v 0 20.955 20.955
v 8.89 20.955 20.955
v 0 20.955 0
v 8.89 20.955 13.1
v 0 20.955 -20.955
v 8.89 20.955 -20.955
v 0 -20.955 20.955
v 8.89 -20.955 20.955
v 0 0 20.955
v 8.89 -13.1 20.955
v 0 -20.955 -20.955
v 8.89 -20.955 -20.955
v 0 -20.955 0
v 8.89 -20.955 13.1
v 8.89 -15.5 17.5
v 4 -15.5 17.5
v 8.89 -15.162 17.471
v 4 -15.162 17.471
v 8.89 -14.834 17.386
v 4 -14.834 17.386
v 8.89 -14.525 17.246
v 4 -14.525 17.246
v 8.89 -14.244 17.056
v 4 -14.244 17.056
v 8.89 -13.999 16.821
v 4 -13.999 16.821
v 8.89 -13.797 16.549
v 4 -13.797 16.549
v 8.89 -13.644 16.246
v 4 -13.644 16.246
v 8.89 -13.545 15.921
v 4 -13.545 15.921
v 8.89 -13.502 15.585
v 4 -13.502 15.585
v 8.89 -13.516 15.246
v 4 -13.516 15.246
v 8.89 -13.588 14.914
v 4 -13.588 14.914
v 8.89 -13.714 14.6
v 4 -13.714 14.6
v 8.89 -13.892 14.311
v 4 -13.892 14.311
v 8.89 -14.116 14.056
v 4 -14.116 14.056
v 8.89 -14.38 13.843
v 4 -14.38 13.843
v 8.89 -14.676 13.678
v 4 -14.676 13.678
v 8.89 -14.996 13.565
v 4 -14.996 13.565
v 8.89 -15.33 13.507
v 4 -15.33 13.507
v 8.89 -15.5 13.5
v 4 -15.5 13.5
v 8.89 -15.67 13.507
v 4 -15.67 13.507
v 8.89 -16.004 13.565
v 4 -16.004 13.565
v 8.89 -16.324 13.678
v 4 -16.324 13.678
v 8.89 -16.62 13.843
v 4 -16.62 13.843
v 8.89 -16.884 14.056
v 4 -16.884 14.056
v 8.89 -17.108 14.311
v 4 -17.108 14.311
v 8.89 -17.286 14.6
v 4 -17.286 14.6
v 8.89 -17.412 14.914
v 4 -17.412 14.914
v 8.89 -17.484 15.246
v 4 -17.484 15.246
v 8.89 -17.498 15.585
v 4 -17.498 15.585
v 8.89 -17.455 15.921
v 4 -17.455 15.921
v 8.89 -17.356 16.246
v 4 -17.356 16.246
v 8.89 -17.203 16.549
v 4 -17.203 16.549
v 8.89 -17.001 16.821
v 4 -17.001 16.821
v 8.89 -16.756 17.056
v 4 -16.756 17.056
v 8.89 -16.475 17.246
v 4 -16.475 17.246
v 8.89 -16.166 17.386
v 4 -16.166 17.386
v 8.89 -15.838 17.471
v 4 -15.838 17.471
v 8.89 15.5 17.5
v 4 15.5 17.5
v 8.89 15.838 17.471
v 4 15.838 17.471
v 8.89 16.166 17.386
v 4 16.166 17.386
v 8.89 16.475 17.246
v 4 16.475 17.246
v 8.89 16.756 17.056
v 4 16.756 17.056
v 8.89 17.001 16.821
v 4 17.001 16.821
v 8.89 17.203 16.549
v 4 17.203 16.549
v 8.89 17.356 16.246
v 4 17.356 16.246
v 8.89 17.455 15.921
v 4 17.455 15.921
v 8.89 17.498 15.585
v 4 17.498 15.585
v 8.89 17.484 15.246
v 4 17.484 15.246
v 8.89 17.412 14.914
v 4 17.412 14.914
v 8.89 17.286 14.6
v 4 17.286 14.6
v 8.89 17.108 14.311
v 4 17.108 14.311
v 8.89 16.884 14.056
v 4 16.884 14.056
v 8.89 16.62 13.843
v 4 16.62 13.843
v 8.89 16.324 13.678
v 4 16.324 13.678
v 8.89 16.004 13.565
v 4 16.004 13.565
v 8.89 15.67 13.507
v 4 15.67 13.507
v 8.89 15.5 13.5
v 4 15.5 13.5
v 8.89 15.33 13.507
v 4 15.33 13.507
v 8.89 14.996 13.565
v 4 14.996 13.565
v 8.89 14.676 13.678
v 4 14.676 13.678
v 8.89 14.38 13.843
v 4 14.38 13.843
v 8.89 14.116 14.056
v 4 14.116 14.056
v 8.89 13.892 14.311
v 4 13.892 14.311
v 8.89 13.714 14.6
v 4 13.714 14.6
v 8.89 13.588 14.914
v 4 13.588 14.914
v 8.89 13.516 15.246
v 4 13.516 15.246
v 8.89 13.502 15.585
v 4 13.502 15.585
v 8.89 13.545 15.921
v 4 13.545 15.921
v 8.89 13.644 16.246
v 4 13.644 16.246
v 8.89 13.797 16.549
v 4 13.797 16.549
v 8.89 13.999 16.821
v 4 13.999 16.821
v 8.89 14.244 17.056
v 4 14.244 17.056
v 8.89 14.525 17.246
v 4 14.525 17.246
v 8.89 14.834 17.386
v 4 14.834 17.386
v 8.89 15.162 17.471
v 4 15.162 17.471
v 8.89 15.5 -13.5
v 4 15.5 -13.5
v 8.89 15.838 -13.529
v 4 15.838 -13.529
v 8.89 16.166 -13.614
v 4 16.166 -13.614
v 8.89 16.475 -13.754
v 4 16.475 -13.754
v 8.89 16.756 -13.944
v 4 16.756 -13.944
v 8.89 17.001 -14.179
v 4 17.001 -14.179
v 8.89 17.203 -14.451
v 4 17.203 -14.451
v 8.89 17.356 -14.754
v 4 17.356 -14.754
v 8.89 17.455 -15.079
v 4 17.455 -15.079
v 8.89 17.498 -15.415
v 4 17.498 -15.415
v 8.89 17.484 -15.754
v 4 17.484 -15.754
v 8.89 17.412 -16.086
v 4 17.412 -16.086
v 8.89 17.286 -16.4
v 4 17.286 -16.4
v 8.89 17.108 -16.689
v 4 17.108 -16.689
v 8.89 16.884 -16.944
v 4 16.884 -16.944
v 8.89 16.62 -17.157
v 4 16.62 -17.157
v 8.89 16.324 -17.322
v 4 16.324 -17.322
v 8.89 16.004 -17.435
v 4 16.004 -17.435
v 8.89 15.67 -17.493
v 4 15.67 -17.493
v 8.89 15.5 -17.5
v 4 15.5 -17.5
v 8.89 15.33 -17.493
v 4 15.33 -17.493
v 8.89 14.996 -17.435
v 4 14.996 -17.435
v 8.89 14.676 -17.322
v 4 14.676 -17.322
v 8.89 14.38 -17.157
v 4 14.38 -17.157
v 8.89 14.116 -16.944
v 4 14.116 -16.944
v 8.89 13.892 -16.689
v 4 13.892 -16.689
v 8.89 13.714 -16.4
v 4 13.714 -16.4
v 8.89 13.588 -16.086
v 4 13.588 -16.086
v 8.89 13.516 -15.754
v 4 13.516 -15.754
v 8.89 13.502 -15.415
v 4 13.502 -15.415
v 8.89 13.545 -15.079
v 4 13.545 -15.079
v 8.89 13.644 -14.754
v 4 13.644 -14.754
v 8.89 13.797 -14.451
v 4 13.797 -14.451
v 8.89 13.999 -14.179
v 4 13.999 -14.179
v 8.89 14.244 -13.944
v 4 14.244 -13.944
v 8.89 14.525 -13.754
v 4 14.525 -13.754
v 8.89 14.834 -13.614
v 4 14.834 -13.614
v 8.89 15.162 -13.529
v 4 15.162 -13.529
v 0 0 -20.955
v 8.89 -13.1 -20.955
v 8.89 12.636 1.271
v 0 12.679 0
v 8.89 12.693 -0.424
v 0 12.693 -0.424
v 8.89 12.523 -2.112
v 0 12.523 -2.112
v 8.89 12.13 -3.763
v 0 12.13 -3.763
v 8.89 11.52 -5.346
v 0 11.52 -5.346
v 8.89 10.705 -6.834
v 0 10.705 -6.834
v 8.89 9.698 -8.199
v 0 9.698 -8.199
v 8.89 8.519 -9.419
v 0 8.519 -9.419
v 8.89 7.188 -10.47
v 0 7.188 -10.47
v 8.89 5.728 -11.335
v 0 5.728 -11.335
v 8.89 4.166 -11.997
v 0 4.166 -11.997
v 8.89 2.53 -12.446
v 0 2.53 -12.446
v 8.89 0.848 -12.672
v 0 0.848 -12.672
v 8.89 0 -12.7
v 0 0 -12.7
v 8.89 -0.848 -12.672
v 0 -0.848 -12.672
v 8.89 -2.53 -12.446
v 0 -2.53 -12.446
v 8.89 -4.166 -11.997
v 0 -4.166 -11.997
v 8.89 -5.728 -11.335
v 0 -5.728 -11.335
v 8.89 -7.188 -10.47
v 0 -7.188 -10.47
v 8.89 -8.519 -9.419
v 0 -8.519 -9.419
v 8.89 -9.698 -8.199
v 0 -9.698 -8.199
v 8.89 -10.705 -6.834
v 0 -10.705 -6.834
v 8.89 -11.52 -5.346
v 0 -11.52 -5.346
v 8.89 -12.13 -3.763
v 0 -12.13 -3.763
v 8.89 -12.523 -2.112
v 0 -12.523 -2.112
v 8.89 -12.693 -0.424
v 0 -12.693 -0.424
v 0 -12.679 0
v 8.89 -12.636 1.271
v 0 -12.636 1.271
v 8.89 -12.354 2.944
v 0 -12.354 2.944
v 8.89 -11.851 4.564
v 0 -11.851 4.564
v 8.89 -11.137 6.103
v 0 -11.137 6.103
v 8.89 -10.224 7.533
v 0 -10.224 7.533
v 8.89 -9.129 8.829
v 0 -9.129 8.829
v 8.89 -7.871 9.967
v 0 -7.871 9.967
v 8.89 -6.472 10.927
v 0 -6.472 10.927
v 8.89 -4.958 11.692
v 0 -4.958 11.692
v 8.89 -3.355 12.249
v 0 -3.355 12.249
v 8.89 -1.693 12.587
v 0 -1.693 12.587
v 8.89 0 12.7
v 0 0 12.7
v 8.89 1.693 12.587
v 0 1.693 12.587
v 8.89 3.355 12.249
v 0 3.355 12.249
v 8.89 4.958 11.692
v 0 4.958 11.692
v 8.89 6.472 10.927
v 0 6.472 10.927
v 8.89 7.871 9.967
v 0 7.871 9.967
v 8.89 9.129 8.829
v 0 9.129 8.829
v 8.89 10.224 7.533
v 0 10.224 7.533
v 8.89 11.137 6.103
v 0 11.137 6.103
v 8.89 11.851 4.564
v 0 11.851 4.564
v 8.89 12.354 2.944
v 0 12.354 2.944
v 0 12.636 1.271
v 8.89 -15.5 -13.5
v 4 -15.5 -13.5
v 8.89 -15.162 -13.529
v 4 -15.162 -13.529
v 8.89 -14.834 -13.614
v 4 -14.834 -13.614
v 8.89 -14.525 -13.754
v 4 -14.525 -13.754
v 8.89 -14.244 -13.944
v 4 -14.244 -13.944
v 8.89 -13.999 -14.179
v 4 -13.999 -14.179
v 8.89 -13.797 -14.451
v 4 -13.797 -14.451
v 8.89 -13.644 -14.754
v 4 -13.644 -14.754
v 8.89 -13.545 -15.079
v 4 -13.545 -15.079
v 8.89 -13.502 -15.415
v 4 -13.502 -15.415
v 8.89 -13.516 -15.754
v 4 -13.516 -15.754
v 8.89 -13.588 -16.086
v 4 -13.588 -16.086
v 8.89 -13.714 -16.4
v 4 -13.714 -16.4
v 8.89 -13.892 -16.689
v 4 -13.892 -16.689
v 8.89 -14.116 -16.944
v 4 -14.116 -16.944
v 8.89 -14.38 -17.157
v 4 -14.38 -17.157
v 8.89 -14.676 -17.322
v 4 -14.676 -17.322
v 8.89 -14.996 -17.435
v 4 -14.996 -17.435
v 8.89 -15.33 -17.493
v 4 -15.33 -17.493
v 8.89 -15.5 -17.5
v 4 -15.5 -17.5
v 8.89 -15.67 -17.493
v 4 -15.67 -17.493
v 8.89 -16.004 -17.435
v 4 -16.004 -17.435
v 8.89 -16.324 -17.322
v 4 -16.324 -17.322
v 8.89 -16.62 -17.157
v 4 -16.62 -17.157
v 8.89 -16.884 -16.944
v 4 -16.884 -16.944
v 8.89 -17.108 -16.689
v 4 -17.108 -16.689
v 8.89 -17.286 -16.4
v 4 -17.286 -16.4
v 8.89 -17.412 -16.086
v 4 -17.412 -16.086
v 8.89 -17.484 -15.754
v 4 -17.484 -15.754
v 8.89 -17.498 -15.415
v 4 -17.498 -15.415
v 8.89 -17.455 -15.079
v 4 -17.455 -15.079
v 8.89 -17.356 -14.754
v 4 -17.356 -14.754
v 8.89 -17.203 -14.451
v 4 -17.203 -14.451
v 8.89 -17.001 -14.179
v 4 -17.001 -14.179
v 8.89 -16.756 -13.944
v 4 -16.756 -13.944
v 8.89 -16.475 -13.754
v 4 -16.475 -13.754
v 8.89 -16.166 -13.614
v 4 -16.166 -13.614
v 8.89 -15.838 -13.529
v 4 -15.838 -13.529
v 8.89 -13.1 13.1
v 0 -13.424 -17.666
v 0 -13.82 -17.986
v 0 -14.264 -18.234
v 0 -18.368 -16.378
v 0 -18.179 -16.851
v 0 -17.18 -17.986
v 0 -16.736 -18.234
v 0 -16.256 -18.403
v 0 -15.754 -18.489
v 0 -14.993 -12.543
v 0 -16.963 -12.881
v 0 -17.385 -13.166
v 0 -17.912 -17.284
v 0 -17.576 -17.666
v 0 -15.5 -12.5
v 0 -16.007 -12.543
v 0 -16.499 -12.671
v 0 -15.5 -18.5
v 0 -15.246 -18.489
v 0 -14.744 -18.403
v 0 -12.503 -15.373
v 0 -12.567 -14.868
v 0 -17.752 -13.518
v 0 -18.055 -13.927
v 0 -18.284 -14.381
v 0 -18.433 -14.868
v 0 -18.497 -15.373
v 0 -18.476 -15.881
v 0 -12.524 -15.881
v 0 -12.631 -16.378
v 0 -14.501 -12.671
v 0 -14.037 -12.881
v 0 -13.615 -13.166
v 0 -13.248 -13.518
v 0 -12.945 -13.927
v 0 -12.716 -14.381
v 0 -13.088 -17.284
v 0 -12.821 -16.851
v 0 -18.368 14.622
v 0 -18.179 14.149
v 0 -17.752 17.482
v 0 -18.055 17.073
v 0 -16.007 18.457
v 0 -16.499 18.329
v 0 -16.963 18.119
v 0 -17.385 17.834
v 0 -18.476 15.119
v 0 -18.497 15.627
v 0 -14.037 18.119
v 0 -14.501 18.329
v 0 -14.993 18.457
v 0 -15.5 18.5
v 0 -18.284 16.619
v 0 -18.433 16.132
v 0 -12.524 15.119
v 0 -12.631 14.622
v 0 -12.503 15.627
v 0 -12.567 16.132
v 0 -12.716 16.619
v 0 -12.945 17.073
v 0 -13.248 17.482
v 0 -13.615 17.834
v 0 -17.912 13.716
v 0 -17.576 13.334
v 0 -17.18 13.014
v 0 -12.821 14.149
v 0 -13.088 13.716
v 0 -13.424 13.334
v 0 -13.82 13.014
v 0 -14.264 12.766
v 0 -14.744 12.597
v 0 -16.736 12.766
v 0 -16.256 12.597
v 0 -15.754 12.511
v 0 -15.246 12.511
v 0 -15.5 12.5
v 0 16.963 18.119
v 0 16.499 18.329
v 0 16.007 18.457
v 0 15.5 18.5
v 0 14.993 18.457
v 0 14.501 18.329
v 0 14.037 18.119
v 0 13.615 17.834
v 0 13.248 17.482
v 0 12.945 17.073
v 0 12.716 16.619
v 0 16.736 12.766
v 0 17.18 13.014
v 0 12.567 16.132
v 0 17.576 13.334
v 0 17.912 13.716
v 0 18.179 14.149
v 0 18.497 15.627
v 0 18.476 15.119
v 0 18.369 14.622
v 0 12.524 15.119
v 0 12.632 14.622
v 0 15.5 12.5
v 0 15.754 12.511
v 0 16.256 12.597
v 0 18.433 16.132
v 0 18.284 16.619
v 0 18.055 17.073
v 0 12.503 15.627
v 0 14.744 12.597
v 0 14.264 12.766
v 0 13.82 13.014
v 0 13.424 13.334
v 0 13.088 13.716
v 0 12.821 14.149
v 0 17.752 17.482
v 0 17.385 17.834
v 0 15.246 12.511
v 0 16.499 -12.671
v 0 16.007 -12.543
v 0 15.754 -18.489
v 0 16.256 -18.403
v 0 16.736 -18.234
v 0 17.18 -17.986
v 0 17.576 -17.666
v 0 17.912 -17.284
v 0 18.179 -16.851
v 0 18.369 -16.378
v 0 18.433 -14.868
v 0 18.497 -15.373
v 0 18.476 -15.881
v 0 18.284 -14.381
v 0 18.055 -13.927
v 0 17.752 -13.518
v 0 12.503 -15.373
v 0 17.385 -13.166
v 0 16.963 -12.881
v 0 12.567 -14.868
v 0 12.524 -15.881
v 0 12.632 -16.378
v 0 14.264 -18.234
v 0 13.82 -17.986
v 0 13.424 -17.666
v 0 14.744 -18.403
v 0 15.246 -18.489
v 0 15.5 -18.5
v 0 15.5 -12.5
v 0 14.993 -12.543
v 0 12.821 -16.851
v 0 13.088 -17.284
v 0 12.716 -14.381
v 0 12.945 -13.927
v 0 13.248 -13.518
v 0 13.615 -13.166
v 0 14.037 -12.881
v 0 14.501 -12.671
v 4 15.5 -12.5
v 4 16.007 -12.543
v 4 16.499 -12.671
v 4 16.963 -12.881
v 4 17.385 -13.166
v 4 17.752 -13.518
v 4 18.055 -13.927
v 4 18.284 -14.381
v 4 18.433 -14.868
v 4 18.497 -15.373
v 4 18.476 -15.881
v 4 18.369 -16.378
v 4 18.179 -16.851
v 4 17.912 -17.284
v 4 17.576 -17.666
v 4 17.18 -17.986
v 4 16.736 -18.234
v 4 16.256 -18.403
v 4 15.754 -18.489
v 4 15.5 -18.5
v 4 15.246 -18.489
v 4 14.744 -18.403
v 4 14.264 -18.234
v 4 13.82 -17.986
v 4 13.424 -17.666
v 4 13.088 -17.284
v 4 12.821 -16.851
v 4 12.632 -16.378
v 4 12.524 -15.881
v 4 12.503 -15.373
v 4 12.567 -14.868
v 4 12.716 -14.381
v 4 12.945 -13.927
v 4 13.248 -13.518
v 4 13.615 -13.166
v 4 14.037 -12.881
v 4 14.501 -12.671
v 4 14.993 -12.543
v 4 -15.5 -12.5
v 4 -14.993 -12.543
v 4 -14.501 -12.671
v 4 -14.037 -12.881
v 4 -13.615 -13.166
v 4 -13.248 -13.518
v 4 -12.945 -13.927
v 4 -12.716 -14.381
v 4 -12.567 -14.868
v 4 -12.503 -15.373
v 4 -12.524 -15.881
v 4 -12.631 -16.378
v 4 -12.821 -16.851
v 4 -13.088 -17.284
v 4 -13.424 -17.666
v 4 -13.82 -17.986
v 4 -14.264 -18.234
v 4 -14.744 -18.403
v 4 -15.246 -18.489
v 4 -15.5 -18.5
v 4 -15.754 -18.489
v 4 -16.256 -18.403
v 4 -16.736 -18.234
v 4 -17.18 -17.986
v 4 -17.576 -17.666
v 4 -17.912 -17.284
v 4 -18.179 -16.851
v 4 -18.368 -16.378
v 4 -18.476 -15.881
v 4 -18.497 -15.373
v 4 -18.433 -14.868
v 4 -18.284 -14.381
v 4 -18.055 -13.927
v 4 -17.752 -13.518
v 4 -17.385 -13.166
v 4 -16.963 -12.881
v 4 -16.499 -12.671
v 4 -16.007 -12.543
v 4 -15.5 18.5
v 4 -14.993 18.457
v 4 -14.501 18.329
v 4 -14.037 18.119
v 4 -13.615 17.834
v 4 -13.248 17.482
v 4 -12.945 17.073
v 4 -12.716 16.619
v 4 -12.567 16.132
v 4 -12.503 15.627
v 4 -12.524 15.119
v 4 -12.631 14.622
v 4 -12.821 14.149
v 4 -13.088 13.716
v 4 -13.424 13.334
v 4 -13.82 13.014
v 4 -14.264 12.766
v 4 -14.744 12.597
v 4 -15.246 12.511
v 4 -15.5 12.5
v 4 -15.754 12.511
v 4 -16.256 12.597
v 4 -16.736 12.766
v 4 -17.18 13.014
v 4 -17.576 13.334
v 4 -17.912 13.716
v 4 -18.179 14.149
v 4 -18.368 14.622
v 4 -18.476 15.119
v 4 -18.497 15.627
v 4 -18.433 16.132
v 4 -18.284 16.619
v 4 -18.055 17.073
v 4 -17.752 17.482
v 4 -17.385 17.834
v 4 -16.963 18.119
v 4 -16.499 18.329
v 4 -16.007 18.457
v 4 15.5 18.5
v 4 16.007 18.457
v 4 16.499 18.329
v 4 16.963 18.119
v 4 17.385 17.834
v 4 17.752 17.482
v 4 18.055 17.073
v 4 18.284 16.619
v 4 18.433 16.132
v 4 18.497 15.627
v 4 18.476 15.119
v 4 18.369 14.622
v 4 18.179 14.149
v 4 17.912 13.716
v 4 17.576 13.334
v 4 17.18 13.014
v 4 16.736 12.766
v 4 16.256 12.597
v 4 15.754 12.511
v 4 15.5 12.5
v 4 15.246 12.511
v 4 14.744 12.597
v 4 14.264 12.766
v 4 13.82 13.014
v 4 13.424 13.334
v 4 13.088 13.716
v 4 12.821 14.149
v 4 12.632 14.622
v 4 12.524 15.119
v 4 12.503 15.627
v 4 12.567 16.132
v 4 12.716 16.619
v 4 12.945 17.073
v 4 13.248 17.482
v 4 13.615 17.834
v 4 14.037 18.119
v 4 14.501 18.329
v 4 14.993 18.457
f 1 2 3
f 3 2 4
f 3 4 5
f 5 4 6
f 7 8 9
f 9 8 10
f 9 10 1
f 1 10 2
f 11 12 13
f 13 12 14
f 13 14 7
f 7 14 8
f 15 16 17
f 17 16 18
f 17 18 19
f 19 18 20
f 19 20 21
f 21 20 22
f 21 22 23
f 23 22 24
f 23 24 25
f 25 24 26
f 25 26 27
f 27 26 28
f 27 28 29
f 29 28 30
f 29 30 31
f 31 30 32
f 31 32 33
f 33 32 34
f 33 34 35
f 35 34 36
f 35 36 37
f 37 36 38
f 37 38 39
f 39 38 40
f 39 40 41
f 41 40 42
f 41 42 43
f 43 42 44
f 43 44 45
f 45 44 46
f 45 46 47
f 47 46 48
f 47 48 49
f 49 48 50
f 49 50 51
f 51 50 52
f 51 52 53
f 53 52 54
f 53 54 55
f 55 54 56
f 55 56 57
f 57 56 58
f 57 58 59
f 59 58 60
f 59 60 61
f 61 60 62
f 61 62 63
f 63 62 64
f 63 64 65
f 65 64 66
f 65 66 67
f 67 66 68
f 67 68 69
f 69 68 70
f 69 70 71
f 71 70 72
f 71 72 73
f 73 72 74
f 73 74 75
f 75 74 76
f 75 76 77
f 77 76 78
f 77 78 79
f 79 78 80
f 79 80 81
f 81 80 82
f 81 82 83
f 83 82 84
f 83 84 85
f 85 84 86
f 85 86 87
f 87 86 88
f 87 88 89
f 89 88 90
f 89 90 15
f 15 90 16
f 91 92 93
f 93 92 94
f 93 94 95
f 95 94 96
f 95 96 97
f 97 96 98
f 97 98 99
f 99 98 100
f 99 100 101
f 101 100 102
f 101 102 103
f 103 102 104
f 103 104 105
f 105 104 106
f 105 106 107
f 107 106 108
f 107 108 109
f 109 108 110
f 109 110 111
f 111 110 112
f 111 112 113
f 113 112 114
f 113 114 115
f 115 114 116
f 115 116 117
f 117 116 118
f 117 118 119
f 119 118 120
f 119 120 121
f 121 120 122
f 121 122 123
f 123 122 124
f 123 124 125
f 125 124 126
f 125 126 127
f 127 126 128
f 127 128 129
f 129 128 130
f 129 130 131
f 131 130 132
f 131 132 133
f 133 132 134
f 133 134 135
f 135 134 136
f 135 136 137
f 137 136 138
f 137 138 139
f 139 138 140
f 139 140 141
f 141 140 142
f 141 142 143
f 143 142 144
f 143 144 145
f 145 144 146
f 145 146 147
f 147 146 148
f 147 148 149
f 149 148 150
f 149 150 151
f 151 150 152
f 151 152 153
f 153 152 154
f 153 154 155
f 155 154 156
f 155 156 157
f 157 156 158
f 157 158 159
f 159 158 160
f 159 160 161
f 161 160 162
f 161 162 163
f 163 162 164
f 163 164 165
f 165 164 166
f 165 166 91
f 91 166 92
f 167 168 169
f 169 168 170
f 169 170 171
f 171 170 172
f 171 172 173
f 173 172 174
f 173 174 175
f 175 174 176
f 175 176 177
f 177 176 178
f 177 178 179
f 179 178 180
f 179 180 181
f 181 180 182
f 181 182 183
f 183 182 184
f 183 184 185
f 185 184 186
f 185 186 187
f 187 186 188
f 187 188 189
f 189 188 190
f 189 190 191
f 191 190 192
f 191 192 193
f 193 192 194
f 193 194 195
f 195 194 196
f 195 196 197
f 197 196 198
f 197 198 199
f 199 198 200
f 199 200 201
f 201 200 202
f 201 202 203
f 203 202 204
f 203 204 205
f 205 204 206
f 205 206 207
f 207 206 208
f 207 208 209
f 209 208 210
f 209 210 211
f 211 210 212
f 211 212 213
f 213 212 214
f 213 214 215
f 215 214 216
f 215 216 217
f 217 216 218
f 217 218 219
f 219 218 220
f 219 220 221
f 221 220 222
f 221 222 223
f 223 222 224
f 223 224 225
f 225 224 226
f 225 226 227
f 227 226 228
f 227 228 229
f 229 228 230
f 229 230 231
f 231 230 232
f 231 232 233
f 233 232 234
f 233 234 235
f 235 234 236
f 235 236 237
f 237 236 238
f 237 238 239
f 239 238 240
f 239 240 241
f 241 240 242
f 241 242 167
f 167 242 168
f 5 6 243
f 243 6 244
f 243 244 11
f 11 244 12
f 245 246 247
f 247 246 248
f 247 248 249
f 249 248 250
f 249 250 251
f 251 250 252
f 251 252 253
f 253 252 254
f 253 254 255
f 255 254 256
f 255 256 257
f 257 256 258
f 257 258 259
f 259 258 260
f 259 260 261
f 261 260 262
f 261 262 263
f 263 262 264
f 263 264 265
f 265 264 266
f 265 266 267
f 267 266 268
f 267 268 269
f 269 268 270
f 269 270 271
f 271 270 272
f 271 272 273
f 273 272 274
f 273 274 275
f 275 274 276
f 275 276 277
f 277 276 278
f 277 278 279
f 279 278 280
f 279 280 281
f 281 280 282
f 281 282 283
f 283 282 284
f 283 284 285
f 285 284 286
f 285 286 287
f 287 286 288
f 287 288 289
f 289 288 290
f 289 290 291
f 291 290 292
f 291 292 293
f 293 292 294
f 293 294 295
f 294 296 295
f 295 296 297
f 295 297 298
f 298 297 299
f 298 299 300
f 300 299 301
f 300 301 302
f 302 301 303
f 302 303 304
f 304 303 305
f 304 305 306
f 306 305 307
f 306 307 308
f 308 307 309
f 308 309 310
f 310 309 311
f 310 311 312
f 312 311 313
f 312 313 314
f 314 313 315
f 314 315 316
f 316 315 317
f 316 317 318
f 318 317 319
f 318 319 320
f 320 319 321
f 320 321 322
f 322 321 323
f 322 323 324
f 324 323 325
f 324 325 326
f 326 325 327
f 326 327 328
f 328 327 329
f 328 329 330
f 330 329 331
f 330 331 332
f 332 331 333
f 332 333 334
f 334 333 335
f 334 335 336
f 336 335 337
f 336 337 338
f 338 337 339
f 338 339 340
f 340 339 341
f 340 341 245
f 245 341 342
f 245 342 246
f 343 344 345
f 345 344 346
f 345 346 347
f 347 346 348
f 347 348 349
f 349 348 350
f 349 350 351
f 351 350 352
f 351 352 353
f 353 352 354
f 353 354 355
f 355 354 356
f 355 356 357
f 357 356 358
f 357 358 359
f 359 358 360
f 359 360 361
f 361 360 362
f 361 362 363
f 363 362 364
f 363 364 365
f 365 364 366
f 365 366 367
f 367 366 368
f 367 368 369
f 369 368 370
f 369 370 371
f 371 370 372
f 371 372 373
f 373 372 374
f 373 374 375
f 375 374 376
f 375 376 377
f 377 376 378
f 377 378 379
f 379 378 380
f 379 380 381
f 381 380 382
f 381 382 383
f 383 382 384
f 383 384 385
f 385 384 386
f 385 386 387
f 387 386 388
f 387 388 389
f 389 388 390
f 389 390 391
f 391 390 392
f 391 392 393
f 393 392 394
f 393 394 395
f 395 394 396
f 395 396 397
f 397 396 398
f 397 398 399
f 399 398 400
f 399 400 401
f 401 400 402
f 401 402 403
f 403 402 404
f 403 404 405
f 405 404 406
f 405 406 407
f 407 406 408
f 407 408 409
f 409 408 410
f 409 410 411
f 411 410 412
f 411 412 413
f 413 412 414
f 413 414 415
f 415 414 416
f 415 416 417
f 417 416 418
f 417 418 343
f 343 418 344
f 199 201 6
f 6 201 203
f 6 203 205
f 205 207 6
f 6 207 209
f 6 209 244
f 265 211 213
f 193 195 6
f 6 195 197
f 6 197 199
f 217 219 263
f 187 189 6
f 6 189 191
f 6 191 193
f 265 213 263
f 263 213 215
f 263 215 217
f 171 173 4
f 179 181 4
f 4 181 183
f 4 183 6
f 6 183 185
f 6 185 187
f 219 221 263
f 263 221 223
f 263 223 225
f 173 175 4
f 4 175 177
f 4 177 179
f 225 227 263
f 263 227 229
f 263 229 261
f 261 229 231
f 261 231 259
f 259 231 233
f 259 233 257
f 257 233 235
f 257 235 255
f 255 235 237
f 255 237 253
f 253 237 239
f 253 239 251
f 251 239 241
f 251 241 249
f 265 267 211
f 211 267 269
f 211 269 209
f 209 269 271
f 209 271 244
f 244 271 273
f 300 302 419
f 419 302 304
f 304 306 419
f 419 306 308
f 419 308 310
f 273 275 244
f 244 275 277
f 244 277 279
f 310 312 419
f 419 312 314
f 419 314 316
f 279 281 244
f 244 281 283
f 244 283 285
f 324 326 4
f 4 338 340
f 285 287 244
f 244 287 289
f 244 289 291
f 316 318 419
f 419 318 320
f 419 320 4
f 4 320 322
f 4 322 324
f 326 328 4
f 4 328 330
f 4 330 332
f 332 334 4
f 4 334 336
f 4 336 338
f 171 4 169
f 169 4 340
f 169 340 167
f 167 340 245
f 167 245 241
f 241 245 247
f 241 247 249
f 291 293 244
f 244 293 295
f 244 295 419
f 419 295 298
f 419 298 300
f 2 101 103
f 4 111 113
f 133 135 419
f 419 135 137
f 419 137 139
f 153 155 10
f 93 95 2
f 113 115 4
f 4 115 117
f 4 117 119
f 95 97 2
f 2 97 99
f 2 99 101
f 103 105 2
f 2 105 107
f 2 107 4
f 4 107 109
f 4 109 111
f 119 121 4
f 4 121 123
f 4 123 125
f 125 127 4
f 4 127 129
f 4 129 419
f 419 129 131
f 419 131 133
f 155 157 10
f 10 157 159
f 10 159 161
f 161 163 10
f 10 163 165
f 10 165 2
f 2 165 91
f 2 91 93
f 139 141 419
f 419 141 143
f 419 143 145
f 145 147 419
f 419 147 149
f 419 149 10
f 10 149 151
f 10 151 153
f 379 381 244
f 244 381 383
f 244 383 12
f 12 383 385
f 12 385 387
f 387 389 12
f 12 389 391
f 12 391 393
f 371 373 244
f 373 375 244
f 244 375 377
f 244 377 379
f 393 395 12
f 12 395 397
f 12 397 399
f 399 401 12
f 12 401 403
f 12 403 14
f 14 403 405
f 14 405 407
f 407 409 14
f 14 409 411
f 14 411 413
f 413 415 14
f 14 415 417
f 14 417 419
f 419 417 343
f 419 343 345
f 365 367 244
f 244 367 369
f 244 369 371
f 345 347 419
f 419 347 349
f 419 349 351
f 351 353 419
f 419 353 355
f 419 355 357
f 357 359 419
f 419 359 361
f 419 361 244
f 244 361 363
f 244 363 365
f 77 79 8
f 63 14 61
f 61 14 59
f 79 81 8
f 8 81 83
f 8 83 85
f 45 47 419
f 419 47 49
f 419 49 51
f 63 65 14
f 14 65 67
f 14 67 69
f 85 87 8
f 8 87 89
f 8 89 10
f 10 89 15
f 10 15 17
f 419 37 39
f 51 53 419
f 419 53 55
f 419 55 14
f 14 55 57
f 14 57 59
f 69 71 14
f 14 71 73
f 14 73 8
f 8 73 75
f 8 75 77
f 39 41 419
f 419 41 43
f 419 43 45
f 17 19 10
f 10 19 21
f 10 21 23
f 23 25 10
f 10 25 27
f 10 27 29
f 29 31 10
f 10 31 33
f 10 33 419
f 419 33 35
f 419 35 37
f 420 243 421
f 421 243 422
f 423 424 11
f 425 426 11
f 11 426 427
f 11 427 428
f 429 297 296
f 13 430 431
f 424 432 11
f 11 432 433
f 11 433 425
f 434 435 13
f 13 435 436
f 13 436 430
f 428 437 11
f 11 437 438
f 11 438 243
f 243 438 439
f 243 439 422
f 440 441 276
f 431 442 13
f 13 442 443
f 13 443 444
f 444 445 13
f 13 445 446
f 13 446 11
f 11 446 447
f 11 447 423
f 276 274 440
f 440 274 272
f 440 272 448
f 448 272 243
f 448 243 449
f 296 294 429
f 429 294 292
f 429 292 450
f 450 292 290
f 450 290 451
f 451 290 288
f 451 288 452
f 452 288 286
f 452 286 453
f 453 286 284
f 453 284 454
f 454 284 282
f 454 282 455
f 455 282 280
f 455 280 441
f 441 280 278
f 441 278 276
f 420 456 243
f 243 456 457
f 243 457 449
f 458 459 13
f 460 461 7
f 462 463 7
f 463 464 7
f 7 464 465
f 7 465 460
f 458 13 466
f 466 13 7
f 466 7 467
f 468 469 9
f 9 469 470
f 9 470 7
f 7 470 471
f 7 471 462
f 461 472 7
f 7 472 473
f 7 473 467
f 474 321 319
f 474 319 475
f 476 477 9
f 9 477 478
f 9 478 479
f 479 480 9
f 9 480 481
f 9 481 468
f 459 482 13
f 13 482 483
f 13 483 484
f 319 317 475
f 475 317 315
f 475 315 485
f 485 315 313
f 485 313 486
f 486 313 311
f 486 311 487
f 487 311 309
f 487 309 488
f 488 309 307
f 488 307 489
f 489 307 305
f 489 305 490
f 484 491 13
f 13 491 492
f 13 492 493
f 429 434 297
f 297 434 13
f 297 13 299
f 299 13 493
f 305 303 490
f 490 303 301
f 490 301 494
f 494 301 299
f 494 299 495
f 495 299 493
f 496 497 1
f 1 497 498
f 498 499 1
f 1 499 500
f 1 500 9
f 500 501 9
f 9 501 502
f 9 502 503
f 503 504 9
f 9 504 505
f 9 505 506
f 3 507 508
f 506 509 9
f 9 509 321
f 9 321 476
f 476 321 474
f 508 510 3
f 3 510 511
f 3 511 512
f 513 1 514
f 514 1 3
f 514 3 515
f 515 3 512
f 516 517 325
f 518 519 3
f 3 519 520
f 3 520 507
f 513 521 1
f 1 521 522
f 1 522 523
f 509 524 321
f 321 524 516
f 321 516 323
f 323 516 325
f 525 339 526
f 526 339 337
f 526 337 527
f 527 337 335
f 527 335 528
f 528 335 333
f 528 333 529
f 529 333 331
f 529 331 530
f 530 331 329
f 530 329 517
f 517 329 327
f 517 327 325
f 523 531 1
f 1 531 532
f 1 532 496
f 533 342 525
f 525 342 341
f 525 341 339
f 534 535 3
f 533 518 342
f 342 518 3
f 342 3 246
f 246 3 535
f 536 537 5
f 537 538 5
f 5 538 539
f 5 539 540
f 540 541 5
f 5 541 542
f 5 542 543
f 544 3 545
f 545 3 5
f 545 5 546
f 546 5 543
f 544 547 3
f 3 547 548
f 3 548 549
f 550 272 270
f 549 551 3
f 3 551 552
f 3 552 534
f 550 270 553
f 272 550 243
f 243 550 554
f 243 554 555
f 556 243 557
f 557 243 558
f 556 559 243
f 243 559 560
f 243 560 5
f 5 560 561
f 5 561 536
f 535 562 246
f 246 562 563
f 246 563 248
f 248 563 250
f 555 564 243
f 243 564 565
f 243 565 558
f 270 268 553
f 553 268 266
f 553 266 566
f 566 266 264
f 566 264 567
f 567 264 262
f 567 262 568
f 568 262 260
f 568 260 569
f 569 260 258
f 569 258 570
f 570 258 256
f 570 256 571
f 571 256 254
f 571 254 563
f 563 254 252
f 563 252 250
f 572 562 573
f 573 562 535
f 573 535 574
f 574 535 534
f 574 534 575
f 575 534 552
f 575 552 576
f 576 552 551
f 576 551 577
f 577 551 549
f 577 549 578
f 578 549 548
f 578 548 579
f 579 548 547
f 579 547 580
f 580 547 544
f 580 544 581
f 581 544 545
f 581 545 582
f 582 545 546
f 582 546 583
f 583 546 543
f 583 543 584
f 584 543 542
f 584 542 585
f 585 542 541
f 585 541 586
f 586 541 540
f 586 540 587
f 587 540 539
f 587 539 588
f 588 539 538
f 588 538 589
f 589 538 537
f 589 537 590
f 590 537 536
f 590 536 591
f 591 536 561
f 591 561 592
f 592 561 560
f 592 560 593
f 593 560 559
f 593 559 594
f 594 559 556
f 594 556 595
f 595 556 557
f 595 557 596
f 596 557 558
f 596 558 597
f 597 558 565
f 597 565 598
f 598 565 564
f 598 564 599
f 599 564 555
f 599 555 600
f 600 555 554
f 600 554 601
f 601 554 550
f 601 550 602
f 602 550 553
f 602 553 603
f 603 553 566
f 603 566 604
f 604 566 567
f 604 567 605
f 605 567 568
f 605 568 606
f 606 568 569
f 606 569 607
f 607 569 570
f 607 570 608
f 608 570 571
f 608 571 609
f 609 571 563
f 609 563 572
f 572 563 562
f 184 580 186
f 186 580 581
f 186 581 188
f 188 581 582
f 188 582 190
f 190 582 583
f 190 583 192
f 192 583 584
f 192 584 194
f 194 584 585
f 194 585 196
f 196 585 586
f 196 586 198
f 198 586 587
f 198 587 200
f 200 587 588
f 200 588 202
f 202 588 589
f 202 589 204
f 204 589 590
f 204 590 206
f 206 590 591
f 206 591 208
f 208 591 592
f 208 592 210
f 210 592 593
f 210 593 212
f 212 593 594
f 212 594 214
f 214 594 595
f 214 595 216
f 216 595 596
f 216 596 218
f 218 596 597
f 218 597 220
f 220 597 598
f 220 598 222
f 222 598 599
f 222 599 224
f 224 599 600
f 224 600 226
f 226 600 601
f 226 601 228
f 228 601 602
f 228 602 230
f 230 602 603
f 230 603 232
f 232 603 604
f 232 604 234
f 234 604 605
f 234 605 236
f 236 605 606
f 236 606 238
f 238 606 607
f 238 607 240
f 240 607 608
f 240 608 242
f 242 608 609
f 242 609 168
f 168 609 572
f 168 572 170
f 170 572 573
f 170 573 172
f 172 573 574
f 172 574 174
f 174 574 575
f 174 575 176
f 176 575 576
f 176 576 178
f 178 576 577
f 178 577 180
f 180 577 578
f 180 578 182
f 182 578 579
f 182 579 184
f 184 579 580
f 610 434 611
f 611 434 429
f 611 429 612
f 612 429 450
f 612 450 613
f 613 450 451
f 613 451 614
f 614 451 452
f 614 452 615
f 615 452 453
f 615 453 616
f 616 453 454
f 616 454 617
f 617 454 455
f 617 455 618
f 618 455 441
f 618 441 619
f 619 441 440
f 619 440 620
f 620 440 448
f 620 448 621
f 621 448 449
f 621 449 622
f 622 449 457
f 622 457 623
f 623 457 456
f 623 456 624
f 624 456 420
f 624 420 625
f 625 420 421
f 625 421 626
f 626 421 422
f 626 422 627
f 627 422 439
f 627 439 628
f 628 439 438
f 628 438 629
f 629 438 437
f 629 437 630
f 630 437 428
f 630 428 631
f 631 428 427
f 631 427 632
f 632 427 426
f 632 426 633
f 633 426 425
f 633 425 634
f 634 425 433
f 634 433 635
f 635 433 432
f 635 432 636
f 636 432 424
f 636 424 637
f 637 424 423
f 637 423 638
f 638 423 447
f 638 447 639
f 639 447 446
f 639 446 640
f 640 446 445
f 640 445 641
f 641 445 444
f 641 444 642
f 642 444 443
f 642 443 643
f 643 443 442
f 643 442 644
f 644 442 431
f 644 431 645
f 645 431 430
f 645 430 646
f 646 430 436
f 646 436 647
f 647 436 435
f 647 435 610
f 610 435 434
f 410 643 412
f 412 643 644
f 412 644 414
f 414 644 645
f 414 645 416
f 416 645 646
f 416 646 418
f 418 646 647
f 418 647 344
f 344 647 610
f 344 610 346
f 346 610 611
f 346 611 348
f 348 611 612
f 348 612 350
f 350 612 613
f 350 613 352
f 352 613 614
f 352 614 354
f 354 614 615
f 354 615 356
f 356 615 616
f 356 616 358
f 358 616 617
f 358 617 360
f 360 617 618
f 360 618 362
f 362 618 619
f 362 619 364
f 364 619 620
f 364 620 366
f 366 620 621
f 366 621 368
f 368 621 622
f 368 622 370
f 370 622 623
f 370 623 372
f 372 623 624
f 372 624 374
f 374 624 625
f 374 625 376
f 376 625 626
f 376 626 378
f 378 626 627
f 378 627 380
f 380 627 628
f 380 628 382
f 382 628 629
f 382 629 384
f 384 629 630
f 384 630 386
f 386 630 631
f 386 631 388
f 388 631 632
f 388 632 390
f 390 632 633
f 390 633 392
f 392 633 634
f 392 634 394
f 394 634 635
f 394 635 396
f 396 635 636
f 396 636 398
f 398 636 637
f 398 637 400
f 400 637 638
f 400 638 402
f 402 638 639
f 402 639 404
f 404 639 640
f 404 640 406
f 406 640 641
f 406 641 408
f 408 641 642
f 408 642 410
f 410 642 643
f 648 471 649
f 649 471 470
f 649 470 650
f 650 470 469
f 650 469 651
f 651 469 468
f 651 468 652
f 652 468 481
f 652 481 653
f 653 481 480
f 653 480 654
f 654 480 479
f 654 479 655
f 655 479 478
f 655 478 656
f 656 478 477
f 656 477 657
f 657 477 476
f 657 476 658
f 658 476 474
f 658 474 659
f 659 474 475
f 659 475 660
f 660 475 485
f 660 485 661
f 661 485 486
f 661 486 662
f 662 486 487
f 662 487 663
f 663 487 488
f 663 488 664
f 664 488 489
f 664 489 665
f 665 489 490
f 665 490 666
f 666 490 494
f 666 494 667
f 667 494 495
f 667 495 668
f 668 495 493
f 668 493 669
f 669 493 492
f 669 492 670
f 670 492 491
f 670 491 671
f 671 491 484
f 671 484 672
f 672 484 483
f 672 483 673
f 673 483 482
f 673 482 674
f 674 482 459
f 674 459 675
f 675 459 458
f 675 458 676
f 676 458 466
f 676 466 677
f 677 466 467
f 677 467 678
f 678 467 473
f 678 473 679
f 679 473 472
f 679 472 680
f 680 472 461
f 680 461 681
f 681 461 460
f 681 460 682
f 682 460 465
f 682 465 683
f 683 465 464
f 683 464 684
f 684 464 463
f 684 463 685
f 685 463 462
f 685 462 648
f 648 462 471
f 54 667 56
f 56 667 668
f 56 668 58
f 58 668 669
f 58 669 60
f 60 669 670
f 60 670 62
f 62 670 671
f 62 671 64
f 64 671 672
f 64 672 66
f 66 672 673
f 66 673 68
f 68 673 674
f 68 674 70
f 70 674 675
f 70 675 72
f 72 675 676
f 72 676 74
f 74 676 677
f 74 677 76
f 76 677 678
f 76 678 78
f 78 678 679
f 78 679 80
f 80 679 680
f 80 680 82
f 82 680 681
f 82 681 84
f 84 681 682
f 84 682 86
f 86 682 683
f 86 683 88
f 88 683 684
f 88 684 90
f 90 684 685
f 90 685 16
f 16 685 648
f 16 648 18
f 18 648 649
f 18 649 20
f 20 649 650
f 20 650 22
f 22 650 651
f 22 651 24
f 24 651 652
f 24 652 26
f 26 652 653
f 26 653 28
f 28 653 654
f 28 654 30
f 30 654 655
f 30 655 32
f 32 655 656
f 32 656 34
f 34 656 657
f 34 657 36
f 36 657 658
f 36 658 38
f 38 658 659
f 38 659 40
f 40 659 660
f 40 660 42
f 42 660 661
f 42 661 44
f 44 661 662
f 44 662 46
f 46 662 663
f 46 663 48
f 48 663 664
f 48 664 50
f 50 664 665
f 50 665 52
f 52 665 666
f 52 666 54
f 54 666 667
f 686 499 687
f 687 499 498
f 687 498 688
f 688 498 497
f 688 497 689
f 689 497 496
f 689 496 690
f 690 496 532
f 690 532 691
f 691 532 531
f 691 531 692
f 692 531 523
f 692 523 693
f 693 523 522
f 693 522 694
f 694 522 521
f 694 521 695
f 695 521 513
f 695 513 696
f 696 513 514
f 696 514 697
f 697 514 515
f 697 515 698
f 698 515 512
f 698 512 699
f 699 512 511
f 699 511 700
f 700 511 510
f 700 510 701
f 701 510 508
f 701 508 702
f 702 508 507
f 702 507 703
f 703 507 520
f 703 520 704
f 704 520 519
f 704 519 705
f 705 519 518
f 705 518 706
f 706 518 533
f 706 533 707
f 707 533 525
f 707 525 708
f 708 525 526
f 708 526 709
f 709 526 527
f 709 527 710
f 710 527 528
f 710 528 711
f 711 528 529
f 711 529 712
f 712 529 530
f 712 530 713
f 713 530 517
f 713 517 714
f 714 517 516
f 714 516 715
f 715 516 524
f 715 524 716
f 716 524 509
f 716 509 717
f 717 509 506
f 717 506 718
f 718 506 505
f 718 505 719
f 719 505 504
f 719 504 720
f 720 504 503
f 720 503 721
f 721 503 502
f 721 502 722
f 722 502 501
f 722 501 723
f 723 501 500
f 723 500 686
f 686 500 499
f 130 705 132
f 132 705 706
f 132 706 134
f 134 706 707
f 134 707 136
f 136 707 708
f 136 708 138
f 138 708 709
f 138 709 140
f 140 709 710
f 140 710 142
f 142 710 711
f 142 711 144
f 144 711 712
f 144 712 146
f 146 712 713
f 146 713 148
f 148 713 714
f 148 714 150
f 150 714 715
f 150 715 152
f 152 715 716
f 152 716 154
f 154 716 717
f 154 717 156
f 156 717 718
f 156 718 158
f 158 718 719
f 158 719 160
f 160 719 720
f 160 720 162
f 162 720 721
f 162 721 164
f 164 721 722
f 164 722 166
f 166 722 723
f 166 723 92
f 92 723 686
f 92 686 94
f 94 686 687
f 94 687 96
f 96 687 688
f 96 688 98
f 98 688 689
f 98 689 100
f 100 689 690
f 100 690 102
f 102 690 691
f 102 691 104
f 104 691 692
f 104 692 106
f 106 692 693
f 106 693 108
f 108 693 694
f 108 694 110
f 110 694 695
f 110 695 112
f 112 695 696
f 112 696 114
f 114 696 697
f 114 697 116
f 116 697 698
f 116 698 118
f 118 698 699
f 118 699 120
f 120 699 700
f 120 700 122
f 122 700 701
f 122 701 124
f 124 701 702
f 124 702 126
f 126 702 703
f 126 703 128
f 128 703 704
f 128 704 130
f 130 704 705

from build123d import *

# Parameters (mm, degrees)
SKETCH37_W           = 41.91
SKETCH37_H           = 41.91
SKETCH37_R           = 12.7
SKETCH37_R_2         = 2
BOSS_EXTRUDE27_DEPTH = 8.89
SKETCH37_9_R         = 2.999999969
CUT_EXTRUDE1_DEPTH   = 4.000000128


with BuildPart() as part:
    # Sketch37 → Boss-Extrude27 (new body)
    with BuildSketch(Plane(origin=(0, 0, 0), x_dir=(0, 0, -1), z_dir=(1, 0, 0))):
        Rectangle(SKETCH37_W, SKETCH37_H)
        Circle(SKETCH37_R, mode=Mode.SUBTRACT)
        with Locations((-15.5, -15.5)):
            Circle(SKETCH37_R_2, mode=Mode.SUBTRACT)
        with Locations((15.5, -15.5)):
            Circle(SKETCH37_R_2, mode=Mode.SUBTRACT)
        with Locations((-15.5, 15.5)):
            Circle(SKETCH37_R_2, mode=Mode.SUBTRACT)
        with Locations((15.5, 15.5)):
            Circle(SKETCH37_R_2, mode=Mode.SUBTRACT)
    extrude(amount=BOSS_EXTRUDE27_DEPTH)

    # Sketch37<9> → Cut-Extrude1 (cut)
    with BuildSketch(Plane(origin=(0, 0, 0), x_dir=(0, 0, -1), z_dir=(1, 0, 0))):
        with Locations((15.5, 15.5)):
            Circle(SKETCH37_9_R)
        with Locations((-15.5, 15.5)):
            Circle(SKETCH37_9_R)
        with Locations((-15.5, -15.5)):
            Circle(SKETCH37_9_R)
        with Locations((15.5, -15.5)):
            Circle(SKETCH37_9_R)
    extrude(amount=CUT_EXTRUDE1_DEPTH, mode=Mode.SUBTRACT)


solid = part.part
